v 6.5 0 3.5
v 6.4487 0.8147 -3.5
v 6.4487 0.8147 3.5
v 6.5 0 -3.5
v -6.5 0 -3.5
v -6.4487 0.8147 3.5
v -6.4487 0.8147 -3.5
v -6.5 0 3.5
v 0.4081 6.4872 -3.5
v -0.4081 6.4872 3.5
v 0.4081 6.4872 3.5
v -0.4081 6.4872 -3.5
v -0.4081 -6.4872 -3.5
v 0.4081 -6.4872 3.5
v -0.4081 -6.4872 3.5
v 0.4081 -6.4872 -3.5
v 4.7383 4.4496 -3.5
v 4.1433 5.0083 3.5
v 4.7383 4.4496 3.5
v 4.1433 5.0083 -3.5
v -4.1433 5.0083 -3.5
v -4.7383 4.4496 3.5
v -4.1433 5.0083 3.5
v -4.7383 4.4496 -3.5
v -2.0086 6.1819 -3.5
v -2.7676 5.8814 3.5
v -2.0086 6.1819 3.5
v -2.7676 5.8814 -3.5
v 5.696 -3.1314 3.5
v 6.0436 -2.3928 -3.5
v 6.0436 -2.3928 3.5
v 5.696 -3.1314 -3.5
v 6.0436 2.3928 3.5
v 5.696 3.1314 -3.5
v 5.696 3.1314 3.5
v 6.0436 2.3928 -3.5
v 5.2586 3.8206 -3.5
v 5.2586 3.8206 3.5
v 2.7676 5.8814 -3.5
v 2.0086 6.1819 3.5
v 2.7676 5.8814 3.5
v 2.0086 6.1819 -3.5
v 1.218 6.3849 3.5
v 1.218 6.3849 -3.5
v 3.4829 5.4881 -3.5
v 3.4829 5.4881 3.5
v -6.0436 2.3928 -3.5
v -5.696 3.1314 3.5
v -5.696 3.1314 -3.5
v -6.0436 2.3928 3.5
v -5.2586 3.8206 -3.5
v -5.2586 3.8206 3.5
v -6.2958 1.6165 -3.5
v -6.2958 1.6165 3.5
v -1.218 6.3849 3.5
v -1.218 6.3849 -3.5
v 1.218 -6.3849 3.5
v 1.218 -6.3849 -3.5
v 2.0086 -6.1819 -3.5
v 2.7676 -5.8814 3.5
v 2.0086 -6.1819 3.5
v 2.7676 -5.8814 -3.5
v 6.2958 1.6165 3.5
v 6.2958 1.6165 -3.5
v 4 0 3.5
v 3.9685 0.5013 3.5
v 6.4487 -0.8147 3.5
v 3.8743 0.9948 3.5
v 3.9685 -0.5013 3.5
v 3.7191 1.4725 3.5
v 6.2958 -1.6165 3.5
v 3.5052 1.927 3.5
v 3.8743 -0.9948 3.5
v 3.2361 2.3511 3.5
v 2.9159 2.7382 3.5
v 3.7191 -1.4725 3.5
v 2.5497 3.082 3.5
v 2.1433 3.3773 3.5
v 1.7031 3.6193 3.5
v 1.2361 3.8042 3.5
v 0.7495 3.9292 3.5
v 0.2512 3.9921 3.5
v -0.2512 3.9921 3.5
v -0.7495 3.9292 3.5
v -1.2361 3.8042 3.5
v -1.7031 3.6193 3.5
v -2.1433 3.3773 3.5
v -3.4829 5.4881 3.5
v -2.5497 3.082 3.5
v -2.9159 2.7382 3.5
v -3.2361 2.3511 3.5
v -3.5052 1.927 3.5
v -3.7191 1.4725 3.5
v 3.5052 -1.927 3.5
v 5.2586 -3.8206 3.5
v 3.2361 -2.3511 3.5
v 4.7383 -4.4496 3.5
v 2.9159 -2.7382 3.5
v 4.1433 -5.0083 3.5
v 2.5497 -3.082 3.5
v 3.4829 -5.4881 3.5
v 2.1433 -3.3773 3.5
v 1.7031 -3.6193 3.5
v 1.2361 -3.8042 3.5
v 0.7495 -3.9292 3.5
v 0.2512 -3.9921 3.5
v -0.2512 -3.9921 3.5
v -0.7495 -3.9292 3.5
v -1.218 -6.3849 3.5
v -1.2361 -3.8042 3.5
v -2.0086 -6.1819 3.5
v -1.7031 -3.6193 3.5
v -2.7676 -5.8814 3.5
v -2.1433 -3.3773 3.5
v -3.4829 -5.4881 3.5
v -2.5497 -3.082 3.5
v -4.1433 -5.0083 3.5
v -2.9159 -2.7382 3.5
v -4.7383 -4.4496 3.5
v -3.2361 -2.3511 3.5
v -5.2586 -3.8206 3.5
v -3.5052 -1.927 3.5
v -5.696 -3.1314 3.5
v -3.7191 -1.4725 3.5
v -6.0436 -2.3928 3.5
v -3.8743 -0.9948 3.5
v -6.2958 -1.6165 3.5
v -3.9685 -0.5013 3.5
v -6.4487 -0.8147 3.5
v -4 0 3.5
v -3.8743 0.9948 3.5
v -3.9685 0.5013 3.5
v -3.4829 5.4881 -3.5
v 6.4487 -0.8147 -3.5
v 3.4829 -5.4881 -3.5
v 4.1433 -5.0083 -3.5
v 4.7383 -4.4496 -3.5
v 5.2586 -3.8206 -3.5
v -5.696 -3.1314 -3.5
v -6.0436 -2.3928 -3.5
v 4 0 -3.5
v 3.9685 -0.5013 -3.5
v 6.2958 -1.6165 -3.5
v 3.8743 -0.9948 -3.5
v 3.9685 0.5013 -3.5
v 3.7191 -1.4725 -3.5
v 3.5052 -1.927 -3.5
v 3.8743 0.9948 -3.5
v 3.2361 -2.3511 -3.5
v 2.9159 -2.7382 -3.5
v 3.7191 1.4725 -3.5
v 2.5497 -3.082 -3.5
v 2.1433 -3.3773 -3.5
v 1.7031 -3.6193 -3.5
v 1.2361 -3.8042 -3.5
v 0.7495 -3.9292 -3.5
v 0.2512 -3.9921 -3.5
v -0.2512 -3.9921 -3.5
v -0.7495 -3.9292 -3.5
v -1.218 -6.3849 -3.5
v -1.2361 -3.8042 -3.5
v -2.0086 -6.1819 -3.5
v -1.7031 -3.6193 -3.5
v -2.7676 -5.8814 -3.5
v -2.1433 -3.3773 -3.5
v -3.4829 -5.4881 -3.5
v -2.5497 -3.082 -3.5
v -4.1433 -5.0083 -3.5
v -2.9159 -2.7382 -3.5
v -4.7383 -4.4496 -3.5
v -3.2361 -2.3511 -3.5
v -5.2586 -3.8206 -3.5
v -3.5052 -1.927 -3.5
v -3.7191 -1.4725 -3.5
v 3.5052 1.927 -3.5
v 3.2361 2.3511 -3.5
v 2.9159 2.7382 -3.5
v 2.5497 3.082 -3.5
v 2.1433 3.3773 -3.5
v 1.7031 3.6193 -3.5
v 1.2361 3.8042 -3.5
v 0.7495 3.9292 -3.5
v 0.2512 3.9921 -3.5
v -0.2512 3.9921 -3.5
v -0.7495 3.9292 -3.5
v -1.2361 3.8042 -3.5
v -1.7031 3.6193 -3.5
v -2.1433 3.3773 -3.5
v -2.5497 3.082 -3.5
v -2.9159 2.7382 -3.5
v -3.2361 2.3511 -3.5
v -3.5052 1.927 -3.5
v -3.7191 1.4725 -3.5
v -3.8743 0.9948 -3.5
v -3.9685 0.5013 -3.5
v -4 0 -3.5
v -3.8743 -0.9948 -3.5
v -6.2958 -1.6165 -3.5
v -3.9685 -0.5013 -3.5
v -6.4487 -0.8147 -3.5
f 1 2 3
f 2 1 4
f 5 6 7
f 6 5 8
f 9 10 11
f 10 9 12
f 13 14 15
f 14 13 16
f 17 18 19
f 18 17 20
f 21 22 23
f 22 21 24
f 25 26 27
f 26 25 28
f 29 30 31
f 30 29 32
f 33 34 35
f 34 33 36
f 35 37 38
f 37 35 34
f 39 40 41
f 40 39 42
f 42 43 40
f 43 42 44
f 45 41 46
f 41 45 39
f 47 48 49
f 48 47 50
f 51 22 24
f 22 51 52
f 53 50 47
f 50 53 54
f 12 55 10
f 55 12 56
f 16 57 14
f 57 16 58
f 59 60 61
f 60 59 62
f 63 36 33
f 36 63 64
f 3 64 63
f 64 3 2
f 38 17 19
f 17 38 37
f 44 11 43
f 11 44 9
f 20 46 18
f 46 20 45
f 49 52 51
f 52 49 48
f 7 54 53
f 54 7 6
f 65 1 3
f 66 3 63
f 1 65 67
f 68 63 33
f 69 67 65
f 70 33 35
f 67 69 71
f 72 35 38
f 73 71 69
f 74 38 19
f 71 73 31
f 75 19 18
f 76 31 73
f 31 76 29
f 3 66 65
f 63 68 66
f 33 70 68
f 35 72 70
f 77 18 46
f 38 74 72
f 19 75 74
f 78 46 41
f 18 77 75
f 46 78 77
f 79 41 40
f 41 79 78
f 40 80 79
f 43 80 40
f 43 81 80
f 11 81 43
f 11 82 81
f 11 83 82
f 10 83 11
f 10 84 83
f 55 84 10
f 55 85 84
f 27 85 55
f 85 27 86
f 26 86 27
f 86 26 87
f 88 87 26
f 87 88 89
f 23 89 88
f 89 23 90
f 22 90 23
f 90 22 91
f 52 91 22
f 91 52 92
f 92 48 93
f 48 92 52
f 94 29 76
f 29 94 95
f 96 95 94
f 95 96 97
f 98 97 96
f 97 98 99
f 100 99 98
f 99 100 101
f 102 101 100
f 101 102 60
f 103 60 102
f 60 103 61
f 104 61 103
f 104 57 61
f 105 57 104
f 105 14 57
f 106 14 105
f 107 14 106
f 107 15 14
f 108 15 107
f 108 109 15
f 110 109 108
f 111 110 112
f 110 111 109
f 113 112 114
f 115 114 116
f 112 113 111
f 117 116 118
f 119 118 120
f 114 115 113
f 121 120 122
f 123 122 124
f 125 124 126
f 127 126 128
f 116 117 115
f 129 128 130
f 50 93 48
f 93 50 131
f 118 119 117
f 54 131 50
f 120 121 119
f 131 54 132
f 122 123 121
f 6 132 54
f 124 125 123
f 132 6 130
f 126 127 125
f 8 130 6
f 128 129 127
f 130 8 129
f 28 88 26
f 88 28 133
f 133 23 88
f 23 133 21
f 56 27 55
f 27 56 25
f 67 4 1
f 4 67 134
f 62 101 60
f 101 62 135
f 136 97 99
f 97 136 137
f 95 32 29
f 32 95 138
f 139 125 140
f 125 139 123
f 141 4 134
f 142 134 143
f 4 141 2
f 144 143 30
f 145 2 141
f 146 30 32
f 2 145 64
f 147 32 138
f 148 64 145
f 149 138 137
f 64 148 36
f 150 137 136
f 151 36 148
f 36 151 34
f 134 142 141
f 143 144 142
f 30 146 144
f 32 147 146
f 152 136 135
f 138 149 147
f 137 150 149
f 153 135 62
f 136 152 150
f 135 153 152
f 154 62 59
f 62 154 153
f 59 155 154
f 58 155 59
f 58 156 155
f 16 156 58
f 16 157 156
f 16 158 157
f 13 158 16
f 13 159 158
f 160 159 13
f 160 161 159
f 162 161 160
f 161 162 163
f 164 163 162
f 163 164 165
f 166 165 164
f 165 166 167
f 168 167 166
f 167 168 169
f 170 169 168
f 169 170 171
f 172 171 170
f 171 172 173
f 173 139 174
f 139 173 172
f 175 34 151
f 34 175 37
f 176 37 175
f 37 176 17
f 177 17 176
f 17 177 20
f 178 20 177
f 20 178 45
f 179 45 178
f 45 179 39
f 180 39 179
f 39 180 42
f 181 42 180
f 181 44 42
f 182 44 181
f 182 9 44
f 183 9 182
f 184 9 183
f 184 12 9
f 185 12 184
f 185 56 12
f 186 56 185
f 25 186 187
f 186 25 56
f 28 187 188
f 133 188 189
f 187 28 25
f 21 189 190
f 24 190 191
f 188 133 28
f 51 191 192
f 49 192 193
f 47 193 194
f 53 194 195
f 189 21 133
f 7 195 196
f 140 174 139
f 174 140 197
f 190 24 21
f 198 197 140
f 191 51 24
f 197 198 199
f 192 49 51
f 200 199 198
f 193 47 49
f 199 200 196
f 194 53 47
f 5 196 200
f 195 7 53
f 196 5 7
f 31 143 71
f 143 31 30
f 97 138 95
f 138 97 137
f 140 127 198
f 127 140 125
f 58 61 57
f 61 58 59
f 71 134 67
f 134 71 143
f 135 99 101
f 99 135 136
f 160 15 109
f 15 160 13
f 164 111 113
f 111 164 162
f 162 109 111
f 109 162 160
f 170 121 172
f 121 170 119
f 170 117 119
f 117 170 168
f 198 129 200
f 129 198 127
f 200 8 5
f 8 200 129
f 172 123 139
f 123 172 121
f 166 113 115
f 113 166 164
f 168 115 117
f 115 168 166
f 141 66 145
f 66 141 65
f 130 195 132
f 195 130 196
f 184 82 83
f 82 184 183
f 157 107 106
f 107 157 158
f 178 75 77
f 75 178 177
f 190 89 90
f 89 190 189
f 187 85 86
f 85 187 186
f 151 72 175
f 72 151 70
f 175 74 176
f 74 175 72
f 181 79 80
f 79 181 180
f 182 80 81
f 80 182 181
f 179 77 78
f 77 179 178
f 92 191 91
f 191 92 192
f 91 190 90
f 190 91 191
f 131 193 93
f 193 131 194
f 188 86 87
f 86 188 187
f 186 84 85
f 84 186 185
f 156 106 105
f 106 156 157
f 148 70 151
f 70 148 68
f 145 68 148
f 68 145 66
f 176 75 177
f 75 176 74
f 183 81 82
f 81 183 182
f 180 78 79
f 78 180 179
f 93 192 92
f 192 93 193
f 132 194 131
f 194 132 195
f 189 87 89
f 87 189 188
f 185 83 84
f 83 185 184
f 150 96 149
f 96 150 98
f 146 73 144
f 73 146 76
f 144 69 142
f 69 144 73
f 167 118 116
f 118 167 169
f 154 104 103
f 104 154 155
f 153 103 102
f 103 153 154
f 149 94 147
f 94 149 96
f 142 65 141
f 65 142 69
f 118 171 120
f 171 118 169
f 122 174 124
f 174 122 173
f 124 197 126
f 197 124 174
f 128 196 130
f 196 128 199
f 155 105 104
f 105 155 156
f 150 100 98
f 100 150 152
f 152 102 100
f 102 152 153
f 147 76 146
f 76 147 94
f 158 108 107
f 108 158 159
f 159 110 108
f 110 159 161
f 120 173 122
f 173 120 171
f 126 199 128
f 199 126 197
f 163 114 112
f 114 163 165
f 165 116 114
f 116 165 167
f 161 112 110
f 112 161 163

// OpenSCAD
$fn = 50;


difference() {
	union() {
		translate(v = [0, 0, -3.5000000000]) {
			cylinder(h = 7, r = 6.5000000000);
		}
	}
	union() {
		translate(v = [0, 0, -100.0000000000]) {
			cylinder(h = 200, r = 4.0000000000);
		}
	}
}
